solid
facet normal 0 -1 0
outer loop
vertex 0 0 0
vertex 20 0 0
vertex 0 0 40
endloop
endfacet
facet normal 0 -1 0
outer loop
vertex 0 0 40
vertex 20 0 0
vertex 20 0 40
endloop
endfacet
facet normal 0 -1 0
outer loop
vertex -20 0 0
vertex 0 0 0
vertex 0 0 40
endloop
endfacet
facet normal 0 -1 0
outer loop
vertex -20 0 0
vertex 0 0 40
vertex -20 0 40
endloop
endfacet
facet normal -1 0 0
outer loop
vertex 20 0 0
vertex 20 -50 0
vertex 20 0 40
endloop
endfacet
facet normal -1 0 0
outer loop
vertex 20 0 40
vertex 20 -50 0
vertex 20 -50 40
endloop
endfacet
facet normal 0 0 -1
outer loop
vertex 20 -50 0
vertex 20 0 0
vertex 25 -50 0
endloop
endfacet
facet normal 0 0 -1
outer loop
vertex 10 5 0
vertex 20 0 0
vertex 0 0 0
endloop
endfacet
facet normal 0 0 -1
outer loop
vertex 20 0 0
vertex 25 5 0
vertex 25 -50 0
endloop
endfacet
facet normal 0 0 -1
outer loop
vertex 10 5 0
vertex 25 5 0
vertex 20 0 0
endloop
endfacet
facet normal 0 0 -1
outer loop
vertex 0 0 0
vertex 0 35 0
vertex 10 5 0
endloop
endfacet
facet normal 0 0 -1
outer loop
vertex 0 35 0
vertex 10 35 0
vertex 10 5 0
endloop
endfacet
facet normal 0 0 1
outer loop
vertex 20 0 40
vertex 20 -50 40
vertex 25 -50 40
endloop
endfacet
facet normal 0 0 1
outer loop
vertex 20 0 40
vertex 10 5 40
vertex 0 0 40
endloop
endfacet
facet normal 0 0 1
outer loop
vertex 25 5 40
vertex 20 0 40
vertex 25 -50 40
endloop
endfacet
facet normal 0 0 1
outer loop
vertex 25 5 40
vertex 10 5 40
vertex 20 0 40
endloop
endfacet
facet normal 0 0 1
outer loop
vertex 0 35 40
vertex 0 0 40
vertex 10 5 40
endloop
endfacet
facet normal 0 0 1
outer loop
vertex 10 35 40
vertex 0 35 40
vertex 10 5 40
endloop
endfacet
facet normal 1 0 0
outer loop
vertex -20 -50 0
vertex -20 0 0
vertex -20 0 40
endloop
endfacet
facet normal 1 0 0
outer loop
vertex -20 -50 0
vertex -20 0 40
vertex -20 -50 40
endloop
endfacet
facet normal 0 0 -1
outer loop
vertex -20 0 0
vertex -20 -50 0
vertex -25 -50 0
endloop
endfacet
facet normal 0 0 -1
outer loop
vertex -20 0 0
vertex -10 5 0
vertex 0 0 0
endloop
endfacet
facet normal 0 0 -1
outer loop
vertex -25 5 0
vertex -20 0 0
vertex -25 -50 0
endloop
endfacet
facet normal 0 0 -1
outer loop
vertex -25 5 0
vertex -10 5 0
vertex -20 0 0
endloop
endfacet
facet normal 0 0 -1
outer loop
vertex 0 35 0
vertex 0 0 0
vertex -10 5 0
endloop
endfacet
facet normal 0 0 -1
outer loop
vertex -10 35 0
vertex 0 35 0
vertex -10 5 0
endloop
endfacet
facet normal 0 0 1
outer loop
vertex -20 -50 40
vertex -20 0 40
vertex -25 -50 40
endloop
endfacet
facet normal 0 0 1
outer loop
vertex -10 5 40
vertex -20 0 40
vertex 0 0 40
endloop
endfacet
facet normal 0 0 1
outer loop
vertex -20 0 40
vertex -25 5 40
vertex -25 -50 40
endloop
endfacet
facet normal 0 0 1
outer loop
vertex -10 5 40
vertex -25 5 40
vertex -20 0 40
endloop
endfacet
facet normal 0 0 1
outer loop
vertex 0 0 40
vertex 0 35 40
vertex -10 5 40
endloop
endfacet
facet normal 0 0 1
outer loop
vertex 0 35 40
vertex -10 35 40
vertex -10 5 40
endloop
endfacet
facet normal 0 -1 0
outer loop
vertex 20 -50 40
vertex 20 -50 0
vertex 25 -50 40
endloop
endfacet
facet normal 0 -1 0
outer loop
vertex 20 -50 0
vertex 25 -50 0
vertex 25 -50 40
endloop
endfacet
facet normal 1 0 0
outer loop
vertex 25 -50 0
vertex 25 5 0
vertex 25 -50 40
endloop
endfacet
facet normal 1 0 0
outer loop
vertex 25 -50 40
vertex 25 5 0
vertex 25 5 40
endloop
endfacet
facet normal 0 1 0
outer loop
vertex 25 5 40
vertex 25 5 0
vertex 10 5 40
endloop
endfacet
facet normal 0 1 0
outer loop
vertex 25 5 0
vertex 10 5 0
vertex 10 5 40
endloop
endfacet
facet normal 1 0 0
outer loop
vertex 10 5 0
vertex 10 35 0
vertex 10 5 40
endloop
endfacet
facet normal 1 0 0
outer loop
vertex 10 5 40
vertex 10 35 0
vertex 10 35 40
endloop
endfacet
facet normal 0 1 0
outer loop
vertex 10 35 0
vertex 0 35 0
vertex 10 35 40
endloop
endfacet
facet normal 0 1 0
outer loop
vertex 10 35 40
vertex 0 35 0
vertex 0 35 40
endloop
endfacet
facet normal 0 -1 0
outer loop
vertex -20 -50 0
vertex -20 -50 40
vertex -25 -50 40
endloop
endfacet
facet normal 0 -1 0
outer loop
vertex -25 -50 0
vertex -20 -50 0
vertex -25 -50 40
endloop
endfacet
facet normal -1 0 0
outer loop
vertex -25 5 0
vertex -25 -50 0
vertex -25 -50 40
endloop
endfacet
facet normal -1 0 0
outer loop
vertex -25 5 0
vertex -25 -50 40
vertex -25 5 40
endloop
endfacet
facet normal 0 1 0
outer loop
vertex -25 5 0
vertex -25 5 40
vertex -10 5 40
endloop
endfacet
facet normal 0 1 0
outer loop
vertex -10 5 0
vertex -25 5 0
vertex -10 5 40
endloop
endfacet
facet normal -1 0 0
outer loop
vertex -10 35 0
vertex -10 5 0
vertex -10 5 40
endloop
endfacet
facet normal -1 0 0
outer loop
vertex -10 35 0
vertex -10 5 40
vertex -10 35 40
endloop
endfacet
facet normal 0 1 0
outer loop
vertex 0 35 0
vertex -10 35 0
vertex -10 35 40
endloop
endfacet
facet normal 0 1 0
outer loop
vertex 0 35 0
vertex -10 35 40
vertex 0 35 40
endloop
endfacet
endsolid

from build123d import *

# Parameters (mm, degrees)
PAD_DEPTH = 40


with BuildPart() as part:
    # Sketch → Pad (new body)
    with BuildSketch(Plane.XY):
        Polygon((0, 0), (20, 0), (20, -50), (25, -50), (25, 5), (10, 5), (10, 35), (0, 35), align=None)
    pad = extrude(amount=PAD_DEPTH)

    # Mirrored: Pad across Sketch V_Axis
    add(pad.mirror(Plane(origin=(0, 0, 0), x_dir=(0, 0, 1), z_dir=(1, 0, 0))))


solid = part.part
